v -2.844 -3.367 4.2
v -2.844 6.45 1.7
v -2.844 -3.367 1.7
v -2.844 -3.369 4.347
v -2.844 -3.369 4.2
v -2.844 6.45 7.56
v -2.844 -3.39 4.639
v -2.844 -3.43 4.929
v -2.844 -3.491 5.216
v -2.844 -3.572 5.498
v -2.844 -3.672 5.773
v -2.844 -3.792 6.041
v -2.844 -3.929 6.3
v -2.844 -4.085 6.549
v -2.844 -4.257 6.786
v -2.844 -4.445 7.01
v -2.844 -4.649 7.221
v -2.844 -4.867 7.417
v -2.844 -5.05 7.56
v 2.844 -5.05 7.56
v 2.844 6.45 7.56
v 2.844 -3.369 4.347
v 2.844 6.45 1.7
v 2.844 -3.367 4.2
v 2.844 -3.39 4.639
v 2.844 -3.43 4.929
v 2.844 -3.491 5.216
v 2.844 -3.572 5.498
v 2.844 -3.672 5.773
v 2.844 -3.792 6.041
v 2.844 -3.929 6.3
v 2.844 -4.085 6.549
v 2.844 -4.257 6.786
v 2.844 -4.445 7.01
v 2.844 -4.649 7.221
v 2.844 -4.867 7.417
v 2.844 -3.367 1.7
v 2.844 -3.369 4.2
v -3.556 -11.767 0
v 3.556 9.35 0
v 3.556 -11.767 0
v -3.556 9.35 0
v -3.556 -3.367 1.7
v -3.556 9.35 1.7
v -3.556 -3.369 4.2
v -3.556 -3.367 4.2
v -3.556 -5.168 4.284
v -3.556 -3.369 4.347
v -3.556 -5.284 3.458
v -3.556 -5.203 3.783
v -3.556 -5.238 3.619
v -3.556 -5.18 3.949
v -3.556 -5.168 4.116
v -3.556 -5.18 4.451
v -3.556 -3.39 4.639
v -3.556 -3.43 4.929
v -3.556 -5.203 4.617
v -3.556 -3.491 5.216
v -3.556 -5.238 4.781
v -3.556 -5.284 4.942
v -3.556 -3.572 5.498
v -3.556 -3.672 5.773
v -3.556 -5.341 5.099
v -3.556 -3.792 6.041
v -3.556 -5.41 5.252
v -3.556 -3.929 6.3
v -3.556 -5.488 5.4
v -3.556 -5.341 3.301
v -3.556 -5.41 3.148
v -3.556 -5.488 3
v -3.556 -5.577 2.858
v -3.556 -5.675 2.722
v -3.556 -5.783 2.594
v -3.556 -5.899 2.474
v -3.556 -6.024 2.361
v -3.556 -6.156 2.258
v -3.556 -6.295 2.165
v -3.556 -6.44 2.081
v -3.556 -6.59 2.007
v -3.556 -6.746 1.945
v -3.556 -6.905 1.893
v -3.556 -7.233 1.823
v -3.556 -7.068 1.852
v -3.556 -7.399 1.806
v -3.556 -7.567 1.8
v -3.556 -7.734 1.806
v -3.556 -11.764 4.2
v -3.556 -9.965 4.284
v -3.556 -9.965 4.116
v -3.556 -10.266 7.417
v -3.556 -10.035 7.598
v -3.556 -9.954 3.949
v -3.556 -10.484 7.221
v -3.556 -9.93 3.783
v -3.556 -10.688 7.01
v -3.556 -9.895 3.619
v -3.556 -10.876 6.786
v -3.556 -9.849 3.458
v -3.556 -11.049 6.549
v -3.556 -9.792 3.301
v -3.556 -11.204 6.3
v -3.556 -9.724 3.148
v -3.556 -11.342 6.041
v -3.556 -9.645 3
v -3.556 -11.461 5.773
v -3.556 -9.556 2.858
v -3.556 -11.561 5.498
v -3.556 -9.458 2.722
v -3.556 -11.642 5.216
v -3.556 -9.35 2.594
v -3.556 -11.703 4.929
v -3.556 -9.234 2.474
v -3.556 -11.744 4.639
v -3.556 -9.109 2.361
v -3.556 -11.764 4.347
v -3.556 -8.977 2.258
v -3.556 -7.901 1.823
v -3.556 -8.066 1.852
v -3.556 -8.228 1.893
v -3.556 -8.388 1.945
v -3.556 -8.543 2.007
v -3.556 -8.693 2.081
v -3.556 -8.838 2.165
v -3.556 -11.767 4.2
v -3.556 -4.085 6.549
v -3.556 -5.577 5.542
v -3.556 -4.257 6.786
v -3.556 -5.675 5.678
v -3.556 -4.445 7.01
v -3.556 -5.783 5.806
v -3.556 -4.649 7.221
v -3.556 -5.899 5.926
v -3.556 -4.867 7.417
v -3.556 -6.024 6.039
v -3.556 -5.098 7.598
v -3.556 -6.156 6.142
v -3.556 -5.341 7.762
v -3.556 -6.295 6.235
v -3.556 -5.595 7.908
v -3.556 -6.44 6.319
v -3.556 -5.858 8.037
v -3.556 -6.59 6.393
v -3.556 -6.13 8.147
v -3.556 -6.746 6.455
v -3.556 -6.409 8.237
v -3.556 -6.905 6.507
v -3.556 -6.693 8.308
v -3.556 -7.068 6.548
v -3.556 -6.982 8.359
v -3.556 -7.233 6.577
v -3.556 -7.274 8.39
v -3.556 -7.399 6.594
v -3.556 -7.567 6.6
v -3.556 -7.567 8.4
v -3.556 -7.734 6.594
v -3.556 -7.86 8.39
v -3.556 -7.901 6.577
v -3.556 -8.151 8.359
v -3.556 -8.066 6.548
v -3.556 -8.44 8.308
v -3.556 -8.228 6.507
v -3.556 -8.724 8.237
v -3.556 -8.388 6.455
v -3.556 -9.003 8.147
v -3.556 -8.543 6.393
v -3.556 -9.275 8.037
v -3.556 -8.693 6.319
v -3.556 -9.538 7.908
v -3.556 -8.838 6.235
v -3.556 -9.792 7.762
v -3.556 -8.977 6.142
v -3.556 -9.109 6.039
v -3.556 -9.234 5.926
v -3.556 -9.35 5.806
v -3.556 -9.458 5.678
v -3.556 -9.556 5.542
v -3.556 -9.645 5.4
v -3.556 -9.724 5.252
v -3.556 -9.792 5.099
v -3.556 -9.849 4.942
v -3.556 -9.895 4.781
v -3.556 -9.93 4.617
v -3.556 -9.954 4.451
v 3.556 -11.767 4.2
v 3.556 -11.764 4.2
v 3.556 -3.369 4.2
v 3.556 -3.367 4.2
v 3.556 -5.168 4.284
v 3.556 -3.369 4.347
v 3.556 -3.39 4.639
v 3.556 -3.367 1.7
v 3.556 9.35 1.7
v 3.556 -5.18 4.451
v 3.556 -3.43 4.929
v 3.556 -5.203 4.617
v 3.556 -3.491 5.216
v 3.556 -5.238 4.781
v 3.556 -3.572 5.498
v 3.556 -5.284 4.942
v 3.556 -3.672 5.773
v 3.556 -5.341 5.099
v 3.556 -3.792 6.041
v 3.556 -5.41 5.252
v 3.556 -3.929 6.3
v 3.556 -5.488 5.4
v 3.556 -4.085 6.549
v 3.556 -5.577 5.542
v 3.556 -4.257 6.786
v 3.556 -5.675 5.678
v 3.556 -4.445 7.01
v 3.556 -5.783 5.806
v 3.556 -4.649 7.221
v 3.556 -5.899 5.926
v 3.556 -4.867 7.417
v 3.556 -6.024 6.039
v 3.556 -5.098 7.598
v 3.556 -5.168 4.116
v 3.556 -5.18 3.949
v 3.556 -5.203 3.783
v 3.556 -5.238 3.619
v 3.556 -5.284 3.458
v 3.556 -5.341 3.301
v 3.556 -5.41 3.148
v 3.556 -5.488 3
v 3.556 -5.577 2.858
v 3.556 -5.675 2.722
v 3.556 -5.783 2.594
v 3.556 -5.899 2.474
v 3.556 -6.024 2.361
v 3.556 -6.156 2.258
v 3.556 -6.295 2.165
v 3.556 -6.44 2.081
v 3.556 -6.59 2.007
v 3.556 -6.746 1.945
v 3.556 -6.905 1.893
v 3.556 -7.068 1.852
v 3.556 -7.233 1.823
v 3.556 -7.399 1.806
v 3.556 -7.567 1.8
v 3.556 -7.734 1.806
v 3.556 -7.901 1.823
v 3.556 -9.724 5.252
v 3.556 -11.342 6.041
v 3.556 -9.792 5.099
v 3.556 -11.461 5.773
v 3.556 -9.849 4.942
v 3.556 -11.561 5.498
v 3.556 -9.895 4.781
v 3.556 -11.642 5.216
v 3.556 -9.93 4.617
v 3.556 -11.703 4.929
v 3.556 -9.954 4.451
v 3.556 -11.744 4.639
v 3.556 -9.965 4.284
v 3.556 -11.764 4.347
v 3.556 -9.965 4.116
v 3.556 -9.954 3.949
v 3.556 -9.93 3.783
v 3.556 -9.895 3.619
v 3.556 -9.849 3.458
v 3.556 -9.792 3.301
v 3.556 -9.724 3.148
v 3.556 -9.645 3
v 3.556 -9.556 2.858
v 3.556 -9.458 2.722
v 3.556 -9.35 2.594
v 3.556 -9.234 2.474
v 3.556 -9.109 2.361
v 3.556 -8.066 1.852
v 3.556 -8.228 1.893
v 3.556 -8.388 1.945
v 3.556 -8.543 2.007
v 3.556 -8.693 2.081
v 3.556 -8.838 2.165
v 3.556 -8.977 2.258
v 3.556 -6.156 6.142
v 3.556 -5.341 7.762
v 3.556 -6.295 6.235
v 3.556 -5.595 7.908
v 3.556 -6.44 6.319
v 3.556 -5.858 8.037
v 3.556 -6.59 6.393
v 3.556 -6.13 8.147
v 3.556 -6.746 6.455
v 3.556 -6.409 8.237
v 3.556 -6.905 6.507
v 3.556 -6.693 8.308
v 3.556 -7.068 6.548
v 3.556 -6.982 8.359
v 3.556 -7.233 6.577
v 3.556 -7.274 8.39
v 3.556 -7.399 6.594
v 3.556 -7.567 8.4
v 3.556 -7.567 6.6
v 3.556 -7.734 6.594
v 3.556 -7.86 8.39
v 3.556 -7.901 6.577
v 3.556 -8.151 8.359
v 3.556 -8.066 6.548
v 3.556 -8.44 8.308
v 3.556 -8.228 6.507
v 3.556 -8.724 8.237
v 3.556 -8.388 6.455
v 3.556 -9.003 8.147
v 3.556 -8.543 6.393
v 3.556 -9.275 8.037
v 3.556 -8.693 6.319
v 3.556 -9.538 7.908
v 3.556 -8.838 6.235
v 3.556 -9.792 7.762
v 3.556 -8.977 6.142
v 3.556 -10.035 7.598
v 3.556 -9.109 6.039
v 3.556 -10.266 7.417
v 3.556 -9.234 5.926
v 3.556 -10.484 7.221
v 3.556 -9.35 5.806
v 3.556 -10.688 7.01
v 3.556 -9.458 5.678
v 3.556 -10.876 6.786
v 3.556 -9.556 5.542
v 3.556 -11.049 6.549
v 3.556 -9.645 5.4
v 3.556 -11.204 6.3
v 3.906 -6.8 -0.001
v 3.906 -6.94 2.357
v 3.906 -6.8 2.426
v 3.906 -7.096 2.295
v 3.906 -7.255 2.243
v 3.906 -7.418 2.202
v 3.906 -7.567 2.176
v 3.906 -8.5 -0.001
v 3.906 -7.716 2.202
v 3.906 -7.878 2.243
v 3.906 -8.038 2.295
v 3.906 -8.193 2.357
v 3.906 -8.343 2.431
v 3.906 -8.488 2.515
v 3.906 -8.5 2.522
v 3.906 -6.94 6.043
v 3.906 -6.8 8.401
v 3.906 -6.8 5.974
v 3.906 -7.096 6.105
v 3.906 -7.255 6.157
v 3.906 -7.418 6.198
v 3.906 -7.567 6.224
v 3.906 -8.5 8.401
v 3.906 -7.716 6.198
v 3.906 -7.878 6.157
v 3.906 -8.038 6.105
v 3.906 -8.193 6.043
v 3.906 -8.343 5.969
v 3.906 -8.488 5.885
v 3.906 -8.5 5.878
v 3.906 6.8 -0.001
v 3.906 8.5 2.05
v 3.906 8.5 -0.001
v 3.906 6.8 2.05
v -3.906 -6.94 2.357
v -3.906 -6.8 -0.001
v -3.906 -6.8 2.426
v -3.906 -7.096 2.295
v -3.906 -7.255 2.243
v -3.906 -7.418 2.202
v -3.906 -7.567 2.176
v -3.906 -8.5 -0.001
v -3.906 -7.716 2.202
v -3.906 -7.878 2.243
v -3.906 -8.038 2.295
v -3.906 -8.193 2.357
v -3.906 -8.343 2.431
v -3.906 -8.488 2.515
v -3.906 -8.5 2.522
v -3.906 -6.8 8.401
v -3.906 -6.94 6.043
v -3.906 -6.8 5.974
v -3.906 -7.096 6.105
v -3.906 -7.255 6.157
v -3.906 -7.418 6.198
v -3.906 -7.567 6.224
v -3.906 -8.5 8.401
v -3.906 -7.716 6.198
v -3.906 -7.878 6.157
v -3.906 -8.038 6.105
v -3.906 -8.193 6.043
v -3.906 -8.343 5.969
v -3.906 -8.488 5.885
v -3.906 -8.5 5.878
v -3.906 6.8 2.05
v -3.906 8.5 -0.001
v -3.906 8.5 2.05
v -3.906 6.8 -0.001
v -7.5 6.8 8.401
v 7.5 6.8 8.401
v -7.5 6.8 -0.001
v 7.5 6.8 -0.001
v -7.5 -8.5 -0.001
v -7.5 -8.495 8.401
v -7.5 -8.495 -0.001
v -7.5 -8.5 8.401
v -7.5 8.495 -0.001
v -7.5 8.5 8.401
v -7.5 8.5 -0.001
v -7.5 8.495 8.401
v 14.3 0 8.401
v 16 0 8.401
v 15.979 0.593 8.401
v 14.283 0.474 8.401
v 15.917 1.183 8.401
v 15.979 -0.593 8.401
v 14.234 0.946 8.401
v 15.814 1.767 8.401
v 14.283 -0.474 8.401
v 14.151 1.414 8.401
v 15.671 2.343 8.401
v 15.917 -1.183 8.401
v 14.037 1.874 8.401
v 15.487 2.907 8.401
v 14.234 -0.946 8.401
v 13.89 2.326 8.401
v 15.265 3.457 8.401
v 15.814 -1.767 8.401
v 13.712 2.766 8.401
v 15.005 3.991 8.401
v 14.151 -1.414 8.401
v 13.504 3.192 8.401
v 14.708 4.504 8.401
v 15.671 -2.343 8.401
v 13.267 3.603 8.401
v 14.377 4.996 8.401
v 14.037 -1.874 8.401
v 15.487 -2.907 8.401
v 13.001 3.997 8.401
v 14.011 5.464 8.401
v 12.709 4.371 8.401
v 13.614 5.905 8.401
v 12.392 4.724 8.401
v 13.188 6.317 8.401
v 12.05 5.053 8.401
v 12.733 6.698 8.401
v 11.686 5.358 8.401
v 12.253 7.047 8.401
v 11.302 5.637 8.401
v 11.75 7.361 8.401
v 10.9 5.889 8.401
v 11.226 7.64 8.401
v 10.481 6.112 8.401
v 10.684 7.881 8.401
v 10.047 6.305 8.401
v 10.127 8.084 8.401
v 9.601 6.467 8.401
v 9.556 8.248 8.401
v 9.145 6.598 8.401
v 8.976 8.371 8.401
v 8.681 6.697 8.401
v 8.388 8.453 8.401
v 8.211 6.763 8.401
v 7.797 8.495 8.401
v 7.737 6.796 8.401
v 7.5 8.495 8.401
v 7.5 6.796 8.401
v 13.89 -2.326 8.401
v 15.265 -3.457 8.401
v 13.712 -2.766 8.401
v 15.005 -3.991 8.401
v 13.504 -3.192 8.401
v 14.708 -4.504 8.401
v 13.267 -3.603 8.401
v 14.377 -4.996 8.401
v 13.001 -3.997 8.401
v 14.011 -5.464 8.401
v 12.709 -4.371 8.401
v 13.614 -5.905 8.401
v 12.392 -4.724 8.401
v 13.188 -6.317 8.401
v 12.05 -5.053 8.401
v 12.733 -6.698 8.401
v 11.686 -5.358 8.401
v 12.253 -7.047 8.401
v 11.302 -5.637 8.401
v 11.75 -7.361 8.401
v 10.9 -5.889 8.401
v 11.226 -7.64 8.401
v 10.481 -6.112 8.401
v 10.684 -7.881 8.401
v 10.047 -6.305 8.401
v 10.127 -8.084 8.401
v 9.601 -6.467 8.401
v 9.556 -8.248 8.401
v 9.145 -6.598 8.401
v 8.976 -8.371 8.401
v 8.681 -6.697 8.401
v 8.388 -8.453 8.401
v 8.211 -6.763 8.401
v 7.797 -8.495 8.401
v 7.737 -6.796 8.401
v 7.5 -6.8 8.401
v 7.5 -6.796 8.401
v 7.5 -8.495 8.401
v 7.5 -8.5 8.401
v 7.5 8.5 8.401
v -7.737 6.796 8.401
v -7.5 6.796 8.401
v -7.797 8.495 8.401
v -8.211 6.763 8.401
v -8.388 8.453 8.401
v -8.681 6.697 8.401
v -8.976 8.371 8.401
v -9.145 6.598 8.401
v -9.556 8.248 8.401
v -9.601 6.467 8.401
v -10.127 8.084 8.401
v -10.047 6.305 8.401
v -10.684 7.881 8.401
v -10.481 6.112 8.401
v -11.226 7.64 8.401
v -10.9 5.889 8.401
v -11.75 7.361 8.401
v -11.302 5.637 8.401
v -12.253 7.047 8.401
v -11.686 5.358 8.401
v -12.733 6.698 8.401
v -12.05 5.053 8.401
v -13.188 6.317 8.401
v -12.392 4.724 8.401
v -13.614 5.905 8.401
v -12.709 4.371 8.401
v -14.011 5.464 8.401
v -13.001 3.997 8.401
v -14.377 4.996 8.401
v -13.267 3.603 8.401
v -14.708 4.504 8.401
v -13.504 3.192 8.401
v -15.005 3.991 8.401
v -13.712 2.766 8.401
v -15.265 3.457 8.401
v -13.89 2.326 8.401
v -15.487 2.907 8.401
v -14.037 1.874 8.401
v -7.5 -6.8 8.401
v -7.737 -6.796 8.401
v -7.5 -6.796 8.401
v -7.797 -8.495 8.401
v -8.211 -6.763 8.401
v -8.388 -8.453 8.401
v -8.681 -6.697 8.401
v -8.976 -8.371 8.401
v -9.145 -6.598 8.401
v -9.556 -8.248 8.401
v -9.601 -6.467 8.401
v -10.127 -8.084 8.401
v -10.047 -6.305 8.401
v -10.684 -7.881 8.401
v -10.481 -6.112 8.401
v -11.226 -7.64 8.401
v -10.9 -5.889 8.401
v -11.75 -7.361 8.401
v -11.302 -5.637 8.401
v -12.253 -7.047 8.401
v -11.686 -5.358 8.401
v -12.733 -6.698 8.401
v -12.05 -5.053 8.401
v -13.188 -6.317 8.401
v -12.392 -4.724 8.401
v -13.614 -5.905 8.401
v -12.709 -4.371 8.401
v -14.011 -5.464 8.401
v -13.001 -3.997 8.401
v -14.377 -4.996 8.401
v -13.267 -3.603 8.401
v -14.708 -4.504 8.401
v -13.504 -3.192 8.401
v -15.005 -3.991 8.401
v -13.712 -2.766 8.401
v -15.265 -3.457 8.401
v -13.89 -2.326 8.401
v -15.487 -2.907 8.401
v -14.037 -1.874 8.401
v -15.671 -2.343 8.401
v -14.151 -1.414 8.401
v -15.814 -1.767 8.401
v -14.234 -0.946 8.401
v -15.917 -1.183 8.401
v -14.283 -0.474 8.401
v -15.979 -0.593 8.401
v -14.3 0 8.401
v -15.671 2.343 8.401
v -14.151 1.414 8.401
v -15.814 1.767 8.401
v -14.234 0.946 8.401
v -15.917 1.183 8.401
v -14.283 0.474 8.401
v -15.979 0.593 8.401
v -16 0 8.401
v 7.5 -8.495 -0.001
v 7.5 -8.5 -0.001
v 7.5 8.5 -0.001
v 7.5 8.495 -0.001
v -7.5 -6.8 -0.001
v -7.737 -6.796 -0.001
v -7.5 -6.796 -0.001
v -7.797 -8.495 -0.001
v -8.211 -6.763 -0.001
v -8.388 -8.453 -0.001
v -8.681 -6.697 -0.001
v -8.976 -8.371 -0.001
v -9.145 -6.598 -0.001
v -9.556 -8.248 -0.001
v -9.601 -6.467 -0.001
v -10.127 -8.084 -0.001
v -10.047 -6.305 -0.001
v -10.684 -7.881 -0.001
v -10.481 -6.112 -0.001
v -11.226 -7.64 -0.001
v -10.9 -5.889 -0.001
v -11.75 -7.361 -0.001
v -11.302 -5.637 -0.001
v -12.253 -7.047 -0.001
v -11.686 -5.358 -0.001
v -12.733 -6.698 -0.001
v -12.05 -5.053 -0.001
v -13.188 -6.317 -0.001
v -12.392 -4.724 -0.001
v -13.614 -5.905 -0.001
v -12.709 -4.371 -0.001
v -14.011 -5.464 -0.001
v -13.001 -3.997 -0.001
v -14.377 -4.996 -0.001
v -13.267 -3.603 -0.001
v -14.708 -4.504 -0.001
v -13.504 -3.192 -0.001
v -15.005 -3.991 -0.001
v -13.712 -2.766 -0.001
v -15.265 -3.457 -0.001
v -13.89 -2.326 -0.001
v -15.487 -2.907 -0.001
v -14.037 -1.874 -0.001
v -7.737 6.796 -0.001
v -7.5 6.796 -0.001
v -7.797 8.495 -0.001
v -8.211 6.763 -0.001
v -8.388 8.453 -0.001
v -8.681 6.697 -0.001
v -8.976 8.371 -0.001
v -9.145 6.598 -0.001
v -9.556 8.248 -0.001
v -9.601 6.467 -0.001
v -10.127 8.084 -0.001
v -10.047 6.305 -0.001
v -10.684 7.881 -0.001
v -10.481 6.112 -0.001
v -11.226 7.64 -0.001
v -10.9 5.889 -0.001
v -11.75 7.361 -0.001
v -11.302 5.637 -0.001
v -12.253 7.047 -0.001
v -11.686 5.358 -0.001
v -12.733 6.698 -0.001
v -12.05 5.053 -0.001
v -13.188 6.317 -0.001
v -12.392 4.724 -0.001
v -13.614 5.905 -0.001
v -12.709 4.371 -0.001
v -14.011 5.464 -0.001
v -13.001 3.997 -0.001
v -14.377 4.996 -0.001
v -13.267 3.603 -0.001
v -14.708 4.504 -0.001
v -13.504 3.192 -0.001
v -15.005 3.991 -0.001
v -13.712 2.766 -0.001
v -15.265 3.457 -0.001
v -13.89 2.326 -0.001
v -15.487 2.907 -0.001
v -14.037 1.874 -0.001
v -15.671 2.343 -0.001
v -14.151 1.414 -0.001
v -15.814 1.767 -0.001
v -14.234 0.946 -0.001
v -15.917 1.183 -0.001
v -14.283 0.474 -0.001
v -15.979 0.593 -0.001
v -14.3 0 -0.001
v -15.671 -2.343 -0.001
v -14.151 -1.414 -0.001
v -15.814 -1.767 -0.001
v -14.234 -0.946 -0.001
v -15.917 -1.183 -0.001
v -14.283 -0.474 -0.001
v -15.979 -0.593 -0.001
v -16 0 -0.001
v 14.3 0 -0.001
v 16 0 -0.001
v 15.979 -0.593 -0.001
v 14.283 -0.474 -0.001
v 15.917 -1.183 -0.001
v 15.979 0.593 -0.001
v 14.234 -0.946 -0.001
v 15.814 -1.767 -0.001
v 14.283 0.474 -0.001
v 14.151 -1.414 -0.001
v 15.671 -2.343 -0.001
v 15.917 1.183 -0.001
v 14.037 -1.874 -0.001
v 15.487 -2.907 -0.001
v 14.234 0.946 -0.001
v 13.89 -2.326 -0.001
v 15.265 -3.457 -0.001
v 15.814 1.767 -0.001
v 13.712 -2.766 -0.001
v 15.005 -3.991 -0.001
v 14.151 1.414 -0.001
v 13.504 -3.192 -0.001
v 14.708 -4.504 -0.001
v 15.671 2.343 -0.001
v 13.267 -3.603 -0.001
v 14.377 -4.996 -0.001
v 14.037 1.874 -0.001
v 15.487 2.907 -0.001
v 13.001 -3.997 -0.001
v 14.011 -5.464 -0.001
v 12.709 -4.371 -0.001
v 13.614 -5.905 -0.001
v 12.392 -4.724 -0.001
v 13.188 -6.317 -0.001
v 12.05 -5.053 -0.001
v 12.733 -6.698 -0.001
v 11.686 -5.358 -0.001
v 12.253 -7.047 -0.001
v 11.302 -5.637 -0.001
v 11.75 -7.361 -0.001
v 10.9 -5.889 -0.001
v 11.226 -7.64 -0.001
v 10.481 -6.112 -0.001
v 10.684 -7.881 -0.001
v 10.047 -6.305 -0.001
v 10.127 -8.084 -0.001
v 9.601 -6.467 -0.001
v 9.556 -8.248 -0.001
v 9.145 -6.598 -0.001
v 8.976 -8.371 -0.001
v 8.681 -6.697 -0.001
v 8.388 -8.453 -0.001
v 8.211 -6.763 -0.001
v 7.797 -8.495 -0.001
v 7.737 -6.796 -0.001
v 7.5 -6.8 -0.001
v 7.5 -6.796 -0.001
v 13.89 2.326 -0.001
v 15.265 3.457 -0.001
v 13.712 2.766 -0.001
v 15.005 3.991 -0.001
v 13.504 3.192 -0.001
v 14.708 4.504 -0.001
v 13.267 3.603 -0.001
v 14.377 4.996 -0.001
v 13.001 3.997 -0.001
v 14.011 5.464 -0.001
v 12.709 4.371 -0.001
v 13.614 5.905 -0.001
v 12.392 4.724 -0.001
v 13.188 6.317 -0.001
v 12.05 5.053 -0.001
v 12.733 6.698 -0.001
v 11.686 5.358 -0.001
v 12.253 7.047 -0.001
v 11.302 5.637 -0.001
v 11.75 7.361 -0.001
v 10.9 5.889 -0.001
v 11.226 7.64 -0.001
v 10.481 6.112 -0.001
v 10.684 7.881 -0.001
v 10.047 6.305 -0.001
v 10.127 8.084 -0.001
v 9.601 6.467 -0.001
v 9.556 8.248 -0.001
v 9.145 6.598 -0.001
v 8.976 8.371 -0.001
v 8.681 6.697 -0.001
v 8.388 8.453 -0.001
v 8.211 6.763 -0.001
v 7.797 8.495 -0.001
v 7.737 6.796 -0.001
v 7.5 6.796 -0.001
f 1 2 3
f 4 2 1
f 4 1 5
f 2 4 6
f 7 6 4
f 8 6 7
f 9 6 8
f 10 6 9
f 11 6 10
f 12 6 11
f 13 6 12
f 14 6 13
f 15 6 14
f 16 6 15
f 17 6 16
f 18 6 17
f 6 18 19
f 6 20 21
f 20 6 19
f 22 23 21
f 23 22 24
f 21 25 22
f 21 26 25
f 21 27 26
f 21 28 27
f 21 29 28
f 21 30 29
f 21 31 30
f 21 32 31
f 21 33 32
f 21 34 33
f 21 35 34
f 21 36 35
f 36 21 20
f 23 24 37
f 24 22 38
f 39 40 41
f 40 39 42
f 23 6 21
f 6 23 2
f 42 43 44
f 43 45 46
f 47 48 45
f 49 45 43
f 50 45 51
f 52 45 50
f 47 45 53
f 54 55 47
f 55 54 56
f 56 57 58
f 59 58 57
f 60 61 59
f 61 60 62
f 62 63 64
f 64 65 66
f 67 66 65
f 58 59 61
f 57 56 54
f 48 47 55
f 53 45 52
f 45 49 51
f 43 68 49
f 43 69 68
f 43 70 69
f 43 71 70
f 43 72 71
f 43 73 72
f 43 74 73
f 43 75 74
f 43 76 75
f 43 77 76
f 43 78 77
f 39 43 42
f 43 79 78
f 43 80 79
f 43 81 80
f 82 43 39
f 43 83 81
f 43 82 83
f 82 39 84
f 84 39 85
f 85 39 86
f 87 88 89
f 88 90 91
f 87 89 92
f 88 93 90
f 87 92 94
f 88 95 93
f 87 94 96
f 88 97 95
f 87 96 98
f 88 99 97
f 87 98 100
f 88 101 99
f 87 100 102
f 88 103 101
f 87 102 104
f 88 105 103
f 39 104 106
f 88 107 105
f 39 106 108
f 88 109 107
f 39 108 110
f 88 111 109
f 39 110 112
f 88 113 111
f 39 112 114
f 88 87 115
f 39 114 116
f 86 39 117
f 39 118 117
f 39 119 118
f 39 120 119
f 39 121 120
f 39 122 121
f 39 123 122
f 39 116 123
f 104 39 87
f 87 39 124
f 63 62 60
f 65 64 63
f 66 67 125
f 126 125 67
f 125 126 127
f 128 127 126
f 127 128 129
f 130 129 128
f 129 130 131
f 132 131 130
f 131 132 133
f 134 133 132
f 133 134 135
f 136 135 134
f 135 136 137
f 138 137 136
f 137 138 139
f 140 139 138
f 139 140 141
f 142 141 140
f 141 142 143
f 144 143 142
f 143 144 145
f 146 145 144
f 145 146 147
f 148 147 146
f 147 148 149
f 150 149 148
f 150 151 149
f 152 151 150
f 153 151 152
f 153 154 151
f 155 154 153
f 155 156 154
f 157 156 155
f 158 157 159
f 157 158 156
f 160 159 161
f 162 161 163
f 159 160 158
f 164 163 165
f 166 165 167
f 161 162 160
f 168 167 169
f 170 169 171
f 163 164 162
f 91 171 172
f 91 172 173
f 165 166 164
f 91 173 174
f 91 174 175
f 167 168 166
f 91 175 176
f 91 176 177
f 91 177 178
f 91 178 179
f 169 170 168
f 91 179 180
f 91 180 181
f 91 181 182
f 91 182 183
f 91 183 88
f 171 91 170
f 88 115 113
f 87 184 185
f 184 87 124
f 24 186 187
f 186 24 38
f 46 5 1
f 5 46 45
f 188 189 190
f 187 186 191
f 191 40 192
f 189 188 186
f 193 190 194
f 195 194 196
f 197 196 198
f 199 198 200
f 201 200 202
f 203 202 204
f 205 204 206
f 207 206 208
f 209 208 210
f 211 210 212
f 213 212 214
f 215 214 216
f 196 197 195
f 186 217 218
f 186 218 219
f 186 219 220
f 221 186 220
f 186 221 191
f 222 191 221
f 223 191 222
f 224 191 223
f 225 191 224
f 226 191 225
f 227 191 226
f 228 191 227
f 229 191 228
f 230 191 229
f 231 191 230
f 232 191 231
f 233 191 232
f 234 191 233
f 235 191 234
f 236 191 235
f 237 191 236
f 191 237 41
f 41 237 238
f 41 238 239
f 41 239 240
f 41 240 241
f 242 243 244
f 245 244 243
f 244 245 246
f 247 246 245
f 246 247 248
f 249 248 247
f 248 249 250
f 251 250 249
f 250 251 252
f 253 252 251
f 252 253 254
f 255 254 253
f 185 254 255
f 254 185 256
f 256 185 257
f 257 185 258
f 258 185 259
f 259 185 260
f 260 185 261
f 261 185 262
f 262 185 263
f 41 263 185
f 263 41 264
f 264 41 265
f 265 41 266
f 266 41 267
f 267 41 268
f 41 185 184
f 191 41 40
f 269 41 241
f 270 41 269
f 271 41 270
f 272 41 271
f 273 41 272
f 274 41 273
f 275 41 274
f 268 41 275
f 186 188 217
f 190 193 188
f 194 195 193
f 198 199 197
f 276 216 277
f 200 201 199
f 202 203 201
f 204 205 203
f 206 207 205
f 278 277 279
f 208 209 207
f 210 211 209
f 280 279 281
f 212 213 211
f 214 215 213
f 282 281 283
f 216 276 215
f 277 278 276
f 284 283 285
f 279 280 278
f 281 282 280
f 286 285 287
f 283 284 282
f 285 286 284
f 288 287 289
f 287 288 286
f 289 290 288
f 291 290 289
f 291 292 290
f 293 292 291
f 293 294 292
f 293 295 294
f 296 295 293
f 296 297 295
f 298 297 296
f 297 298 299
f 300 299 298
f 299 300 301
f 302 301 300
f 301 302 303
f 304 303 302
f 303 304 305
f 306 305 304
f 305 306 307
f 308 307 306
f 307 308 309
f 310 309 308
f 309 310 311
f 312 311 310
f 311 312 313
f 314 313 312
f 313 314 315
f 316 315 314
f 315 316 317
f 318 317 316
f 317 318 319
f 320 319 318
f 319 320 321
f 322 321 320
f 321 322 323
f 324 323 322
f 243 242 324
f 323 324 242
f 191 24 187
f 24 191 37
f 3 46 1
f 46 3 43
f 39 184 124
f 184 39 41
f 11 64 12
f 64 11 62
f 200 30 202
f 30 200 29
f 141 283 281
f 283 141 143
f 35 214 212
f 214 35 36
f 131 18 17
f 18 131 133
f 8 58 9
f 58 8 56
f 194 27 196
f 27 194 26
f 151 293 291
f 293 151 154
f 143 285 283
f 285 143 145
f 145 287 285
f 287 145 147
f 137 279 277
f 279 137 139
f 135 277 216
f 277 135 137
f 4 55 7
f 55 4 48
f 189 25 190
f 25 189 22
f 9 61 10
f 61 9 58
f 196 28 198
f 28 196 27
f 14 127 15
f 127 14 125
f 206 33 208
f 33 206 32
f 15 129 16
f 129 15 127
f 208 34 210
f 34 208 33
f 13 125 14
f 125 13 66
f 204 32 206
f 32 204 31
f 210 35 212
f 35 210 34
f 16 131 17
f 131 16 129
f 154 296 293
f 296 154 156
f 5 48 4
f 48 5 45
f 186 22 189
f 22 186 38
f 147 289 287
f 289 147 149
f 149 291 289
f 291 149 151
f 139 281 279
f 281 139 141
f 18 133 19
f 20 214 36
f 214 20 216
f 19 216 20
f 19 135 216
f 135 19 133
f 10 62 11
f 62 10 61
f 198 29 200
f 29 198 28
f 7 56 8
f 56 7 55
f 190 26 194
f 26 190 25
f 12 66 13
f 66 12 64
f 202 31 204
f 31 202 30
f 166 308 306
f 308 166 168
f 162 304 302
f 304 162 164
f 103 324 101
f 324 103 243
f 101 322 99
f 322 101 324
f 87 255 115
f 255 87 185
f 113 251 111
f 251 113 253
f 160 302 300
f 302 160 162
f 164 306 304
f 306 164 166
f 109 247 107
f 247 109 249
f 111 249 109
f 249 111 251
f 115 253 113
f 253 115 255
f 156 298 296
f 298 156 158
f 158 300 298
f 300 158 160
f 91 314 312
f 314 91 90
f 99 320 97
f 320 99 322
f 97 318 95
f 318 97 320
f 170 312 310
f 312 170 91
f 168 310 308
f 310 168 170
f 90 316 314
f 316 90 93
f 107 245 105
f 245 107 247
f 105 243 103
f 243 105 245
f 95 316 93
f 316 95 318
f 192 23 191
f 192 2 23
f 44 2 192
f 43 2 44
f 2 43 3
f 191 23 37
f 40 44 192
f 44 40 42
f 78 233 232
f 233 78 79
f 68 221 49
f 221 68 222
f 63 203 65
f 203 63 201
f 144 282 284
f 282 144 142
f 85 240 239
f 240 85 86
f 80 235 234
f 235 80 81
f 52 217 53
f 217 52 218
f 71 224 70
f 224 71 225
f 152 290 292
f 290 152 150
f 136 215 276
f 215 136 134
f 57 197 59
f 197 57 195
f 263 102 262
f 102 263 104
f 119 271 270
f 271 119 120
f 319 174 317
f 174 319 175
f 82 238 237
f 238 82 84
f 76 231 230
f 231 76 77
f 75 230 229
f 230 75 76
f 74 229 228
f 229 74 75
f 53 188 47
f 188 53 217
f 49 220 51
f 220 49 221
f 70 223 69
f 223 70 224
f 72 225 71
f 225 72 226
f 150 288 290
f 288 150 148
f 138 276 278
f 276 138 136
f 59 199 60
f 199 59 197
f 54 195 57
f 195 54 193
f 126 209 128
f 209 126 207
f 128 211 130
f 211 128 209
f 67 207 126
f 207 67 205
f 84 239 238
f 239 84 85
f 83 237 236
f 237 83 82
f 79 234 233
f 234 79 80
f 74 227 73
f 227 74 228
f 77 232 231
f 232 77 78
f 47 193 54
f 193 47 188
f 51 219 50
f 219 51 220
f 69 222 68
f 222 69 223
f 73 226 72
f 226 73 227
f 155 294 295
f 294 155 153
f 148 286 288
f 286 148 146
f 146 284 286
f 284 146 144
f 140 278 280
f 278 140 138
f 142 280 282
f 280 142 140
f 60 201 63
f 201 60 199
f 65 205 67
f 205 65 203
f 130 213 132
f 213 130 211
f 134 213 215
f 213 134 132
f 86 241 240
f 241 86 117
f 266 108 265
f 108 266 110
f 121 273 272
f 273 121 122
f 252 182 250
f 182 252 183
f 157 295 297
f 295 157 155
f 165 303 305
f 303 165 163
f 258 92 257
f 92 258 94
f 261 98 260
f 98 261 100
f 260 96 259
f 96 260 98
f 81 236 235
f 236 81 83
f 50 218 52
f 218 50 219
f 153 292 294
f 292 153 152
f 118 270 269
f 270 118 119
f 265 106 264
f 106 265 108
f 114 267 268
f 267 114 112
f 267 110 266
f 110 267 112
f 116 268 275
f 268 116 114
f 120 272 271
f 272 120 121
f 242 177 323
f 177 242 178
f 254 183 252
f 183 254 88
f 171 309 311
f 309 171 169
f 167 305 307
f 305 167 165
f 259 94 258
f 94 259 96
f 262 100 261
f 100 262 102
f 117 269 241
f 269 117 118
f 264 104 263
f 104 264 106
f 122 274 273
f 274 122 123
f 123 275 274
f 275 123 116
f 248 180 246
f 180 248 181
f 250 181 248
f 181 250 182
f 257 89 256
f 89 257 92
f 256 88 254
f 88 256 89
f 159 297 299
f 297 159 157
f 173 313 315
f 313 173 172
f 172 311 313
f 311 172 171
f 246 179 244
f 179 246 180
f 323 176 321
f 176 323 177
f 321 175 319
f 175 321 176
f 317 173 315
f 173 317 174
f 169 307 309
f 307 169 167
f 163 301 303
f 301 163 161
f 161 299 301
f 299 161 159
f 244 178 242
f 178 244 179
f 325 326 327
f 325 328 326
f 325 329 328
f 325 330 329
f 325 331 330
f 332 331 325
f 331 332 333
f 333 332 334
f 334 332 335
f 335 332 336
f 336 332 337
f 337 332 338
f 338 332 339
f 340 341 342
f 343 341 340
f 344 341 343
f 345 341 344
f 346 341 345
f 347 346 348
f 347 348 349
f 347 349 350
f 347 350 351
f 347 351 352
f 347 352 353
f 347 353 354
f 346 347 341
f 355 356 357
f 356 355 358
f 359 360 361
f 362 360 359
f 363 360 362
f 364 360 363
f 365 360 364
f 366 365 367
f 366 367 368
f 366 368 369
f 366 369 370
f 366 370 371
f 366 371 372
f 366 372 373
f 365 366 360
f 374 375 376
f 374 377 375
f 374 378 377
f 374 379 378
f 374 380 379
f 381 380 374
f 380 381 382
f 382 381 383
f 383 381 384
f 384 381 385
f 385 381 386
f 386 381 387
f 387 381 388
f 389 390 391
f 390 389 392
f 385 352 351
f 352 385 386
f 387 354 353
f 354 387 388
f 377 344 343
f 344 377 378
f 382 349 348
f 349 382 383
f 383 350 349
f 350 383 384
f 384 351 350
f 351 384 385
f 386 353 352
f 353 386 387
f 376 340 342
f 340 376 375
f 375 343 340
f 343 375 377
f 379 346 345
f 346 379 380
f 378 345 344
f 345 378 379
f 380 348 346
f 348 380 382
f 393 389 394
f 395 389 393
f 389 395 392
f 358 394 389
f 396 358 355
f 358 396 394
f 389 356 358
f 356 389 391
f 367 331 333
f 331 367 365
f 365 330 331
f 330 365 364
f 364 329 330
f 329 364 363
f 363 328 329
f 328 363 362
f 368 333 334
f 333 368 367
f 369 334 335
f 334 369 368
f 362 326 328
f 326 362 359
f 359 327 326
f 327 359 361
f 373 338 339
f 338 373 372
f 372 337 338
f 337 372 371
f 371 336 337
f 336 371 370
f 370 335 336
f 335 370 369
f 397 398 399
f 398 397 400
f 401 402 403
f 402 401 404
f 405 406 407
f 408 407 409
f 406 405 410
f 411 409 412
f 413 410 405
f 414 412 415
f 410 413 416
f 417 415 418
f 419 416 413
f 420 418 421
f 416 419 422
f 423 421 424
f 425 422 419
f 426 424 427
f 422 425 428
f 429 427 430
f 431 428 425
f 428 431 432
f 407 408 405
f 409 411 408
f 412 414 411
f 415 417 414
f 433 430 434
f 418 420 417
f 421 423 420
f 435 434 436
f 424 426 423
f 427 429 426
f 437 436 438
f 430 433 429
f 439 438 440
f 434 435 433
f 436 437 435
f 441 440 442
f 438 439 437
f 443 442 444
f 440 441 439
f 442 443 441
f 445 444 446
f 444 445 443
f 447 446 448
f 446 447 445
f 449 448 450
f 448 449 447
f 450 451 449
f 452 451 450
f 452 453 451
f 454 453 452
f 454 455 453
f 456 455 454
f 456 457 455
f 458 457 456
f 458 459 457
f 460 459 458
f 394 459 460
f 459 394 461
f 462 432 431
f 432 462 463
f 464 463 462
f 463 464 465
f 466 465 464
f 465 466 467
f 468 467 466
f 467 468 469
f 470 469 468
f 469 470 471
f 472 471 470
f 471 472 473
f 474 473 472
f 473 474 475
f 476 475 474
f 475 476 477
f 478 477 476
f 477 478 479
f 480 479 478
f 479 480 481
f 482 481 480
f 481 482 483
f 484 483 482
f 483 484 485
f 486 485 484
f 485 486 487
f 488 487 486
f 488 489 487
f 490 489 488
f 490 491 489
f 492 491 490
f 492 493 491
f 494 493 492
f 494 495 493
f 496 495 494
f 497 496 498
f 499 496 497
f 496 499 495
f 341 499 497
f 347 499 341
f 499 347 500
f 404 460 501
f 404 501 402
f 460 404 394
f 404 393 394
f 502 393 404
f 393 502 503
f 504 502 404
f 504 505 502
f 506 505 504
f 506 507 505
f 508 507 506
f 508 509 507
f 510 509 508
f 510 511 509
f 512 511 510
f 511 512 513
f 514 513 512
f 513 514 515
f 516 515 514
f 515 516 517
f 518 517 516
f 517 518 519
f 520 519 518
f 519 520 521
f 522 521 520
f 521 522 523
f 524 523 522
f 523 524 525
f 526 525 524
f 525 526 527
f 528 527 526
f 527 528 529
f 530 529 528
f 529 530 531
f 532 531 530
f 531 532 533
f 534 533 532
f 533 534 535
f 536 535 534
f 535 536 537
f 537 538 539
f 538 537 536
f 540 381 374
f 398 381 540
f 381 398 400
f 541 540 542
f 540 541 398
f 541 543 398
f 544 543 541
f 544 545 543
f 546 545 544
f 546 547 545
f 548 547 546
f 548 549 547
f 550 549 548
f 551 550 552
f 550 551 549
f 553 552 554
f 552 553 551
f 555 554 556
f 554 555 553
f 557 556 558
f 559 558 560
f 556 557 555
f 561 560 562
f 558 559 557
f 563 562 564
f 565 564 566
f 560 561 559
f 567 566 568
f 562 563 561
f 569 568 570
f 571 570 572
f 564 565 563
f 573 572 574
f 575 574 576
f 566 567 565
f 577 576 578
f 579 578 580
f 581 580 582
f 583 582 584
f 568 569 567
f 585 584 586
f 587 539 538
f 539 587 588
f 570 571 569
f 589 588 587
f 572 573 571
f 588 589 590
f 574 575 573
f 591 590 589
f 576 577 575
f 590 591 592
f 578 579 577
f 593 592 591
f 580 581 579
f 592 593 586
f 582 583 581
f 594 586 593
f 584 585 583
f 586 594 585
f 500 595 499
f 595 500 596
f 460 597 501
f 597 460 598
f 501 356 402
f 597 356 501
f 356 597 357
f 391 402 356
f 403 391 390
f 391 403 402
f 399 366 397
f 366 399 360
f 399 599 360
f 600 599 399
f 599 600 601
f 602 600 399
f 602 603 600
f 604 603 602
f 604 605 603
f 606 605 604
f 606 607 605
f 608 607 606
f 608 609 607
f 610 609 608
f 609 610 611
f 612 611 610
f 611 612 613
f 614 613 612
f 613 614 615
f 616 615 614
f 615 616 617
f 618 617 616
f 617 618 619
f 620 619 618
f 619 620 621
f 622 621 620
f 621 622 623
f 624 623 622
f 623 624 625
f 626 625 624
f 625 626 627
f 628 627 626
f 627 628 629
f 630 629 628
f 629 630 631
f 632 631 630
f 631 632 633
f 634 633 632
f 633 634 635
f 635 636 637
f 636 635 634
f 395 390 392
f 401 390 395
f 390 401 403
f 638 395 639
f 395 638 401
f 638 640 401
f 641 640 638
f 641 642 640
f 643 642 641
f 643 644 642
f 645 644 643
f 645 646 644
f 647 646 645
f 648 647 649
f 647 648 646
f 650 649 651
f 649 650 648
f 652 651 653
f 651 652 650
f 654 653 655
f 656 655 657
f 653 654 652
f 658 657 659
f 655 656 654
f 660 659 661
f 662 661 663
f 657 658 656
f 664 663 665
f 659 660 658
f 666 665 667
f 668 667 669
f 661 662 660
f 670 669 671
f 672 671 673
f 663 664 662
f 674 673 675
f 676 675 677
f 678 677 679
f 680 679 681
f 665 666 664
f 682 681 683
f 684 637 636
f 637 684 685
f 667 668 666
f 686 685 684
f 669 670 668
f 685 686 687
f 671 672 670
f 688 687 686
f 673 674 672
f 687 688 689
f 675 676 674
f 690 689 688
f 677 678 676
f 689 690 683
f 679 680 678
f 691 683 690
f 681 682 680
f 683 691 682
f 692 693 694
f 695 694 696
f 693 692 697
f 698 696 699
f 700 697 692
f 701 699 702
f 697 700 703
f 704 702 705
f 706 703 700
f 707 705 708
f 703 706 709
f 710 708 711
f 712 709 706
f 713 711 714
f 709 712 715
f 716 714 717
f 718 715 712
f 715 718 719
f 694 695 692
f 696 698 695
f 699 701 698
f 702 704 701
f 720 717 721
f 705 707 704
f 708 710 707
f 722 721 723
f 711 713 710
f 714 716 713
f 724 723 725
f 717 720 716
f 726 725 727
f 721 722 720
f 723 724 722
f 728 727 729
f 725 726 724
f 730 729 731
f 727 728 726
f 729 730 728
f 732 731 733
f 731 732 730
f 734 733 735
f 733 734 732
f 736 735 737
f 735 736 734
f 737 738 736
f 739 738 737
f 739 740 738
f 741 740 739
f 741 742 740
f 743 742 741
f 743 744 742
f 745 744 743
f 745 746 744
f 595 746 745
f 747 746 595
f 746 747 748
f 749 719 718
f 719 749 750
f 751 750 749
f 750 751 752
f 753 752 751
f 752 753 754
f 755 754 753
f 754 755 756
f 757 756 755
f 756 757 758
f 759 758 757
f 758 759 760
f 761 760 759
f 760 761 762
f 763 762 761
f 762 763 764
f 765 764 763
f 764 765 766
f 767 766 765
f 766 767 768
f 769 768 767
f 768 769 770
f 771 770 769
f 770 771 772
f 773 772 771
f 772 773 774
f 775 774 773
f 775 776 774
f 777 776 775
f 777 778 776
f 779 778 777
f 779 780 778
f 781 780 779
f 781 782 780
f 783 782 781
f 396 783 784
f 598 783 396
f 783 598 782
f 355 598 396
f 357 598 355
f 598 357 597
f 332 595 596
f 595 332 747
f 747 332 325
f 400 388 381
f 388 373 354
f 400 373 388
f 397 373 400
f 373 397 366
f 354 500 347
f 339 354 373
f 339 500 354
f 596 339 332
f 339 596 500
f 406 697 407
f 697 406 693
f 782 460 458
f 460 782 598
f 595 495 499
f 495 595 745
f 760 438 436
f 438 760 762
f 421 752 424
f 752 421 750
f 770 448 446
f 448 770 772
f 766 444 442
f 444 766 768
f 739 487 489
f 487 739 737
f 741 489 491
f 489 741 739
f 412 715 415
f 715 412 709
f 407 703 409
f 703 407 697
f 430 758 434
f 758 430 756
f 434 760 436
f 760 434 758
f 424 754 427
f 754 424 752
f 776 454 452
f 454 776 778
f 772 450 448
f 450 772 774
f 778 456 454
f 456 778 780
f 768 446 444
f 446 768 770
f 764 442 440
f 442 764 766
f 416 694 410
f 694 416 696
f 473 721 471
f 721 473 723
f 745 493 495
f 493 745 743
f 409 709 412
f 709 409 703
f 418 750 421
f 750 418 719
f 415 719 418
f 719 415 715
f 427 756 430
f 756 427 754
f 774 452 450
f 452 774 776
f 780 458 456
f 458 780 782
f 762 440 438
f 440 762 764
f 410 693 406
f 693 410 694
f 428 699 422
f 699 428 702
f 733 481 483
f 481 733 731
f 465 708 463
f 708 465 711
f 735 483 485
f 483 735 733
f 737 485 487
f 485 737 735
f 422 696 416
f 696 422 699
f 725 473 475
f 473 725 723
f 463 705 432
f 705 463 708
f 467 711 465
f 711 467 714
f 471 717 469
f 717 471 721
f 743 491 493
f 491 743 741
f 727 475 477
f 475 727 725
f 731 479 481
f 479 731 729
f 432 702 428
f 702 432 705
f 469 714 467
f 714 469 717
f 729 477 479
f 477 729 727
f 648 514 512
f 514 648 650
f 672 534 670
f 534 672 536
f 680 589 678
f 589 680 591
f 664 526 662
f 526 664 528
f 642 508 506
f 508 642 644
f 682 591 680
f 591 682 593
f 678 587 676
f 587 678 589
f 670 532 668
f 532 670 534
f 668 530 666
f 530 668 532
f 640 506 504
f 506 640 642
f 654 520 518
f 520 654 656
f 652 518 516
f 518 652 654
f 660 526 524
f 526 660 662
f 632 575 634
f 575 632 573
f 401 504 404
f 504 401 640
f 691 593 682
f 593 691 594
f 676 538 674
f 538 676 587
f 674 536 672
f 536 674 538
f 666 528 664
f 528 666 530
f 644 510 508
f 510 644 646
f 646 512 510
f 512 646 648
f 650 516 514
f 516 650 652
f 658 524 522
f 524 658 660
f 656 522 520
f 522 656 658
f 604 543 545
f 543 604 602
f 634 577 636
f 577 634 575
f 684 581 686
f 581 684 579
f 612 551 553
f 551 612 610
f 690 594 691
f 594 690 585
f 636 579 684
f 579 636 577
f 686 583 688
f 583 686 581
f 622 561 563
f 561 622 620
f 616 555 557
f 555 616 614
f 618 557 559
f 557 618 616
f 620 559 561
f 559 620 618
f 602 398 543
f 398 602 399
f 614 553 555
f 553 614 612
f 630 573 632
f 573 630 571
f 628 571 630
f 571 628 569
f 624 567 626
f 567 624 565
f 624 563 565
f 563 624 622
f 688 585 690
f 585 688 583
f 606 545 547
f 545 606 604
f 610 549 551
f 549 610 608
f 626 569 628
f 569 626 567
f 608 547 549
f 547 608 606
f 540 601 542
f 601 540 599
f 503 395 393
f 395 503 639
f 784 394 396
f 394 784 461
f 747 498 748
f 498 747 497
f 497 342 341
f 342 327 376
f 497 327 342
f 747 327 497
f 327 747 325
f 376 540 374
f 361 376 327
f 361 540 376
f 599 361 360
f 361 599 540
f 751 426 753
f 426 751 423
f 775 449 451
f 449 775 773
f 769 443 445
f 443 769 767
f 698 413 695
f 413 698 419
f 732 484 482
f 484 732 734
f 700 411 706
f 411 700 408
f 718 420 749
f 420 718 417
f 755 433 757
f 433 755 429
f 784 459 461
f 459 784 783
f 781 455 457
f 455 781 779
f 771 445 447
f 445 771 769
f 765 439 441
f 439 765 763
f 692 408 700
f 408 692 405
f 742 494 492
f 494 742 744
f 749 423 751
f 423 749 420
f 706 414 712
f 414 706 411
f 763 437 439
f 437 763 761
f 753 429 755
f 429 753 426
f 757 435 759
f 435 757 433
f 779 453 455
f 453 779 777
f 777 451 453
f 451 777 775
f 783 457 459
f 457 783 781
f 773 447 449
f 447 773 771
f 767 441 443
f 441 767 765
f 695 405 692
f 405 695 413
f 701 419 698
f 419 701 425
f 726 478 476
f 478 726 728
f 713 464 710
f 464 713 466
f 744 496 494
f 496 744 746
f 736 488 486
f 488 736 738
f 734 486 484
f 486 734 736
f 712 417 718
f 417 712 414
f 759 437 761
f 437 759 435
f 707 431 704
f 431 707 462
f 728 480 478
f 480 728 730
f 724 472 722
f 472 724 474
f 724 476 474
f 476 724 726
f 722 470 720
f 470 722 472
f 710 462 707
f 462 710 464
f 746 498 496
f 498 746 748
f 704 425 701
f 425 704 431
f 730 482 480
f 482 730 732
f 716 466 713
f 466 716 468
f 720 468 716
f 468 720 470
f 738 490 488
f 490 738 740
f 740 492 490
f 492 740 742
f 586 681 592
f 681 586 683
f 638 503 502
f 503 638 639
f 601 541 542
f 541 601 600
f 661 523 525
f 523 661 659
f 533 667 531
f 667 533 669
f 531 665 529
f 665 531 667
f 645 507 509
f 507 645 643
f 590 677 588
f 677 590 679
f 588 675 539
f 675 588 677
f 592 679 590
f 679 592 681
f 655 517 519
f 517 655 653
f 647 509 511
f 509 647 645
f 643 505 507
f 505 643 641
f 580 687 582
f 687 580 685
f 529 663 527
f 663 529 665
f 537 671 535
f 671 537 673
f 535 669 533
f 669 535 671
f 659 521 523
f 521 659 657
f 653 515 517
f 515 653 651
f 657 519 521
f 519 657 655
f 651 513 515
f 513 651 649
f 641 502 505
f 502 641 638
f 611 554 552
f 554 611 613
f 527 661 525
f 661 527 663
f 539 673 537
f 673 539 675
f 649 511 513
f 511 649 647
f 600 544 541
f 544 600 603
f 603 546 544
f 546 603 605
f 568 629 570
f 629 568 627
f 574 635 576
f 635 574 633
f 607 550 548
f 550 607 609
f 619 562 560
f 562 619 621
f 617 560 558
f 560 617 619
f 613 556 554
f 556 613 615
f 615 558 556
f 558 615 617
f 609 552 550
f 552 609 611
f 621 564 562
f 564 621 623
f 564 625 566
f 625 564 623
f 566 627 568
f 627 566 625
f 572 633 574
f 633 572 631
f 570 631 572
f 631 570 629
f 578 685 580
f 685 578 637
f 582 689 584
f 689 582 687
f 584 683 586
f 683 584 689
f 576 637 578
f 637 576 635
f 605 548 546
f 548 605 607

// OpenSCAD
$fn = 90;
WALL_THICKNESS = 1.7; //1.4;
HEIGHT = 8.4;
ATOM = 0.001;
SPACING = 5;
PLAY = 0.7;

DEPTH = 15 + 2;
WIDTH = 28 + 4;
FLAP_WIDTH = WIDTH/4.5;

HINGE_RADIUS = 4.2;
SPACE = PLAY/2; //WALL_THICKNESS/4;

DRAFT = false;

module rounded(offset, h) {
    cube([WIDTH-DEPTH-offset*0, DEPTH-offset*2, h+ATOM*2], true);

    translate([WIDTH/2-DEPTH/2, 0, 0])
    cylinder(d=DEPTH-offset*2, h=h+ATOM*2, center=true);

    translate([-WIDTH/2+DEPTH/2, 0, 0])
    cylinder(d=DEPTH-offset*2, h=h+ATOM*2, center=true);
}

module box(h) {
    translate([0, 0, HEIGHT/2])
    difference() {
        rounded(0, h);
        rounded(WALL_THICKNESS, h+ATOM*2);
    }
}

module flap() {
     width = FLAP_WIDTH;
     width2 = FLAP_WIDTH * .8;
	difference() {
		union() {
			translate([-width/2, -DEPTH/2 +WALL_THICKNESS/2, 0])
			cube([width, DEPTH, WALL_THICKNESS]);
			if (0) {
				translate([-width/2, -DEPTH/2 -WALL_THICKNESS, 0])
				cube([width, DEPTH - SPACE, HEIGHT]);

				translate([-width/2, -DEPTH/2 + HINGE_RADIUS/4.5-HINGE_RADIUS, 0])
				cube([width, HINGE_RADIUS*2, HEIGHT]);
			} else {
				translate([-width2/2, -DEPTH/2 + WALL_THICKNESS*.5, 0])
				cube([width2, DEPTH -WALL_THICKNESS*1.5 - SPACE, HEIGHT*.9]);

				translate([-width/2, -DEPTH/2 + HINGE_RADIUS/4.5-HINGE_RADIUS, 0])
				cube([width, HINGE_RADIUS*2, HINGE_RADIUS]);

				translate([-width/2, -DEPTH/2 +  HINGE_RADIUS/4.5, HINGE_RADIUS])
				rotate([0, 90, 0])
				cylinder(r=HINGE_RADIUS, h=width);
			}
		}

		translate([-width/2-1, -DEPTH/2 + HINGE_RADIUS/4.5, HINGE_RADIUS])
		rotate([0, 90, 0])
		cylinder(r=HINGE_RADIUS/1.75, h=width+2);

	}
}

module grow() {
	if (DRAFT) {
		children();
	} else {
		minkowski() {
			children();
			cube([PLAY, PLAY, PLAY], true);
		}
	}
}

module unit() {
	difference() {
		box(HEIGHT);
		grow()
		flap();
	}
	flap();
}

//for (i=[0:2])
//    for (j=[0:2])
//        translate([i*(WIDTH+SPACING), j*(DEPTH+SPACING), 0])
      unit();
//flap();
